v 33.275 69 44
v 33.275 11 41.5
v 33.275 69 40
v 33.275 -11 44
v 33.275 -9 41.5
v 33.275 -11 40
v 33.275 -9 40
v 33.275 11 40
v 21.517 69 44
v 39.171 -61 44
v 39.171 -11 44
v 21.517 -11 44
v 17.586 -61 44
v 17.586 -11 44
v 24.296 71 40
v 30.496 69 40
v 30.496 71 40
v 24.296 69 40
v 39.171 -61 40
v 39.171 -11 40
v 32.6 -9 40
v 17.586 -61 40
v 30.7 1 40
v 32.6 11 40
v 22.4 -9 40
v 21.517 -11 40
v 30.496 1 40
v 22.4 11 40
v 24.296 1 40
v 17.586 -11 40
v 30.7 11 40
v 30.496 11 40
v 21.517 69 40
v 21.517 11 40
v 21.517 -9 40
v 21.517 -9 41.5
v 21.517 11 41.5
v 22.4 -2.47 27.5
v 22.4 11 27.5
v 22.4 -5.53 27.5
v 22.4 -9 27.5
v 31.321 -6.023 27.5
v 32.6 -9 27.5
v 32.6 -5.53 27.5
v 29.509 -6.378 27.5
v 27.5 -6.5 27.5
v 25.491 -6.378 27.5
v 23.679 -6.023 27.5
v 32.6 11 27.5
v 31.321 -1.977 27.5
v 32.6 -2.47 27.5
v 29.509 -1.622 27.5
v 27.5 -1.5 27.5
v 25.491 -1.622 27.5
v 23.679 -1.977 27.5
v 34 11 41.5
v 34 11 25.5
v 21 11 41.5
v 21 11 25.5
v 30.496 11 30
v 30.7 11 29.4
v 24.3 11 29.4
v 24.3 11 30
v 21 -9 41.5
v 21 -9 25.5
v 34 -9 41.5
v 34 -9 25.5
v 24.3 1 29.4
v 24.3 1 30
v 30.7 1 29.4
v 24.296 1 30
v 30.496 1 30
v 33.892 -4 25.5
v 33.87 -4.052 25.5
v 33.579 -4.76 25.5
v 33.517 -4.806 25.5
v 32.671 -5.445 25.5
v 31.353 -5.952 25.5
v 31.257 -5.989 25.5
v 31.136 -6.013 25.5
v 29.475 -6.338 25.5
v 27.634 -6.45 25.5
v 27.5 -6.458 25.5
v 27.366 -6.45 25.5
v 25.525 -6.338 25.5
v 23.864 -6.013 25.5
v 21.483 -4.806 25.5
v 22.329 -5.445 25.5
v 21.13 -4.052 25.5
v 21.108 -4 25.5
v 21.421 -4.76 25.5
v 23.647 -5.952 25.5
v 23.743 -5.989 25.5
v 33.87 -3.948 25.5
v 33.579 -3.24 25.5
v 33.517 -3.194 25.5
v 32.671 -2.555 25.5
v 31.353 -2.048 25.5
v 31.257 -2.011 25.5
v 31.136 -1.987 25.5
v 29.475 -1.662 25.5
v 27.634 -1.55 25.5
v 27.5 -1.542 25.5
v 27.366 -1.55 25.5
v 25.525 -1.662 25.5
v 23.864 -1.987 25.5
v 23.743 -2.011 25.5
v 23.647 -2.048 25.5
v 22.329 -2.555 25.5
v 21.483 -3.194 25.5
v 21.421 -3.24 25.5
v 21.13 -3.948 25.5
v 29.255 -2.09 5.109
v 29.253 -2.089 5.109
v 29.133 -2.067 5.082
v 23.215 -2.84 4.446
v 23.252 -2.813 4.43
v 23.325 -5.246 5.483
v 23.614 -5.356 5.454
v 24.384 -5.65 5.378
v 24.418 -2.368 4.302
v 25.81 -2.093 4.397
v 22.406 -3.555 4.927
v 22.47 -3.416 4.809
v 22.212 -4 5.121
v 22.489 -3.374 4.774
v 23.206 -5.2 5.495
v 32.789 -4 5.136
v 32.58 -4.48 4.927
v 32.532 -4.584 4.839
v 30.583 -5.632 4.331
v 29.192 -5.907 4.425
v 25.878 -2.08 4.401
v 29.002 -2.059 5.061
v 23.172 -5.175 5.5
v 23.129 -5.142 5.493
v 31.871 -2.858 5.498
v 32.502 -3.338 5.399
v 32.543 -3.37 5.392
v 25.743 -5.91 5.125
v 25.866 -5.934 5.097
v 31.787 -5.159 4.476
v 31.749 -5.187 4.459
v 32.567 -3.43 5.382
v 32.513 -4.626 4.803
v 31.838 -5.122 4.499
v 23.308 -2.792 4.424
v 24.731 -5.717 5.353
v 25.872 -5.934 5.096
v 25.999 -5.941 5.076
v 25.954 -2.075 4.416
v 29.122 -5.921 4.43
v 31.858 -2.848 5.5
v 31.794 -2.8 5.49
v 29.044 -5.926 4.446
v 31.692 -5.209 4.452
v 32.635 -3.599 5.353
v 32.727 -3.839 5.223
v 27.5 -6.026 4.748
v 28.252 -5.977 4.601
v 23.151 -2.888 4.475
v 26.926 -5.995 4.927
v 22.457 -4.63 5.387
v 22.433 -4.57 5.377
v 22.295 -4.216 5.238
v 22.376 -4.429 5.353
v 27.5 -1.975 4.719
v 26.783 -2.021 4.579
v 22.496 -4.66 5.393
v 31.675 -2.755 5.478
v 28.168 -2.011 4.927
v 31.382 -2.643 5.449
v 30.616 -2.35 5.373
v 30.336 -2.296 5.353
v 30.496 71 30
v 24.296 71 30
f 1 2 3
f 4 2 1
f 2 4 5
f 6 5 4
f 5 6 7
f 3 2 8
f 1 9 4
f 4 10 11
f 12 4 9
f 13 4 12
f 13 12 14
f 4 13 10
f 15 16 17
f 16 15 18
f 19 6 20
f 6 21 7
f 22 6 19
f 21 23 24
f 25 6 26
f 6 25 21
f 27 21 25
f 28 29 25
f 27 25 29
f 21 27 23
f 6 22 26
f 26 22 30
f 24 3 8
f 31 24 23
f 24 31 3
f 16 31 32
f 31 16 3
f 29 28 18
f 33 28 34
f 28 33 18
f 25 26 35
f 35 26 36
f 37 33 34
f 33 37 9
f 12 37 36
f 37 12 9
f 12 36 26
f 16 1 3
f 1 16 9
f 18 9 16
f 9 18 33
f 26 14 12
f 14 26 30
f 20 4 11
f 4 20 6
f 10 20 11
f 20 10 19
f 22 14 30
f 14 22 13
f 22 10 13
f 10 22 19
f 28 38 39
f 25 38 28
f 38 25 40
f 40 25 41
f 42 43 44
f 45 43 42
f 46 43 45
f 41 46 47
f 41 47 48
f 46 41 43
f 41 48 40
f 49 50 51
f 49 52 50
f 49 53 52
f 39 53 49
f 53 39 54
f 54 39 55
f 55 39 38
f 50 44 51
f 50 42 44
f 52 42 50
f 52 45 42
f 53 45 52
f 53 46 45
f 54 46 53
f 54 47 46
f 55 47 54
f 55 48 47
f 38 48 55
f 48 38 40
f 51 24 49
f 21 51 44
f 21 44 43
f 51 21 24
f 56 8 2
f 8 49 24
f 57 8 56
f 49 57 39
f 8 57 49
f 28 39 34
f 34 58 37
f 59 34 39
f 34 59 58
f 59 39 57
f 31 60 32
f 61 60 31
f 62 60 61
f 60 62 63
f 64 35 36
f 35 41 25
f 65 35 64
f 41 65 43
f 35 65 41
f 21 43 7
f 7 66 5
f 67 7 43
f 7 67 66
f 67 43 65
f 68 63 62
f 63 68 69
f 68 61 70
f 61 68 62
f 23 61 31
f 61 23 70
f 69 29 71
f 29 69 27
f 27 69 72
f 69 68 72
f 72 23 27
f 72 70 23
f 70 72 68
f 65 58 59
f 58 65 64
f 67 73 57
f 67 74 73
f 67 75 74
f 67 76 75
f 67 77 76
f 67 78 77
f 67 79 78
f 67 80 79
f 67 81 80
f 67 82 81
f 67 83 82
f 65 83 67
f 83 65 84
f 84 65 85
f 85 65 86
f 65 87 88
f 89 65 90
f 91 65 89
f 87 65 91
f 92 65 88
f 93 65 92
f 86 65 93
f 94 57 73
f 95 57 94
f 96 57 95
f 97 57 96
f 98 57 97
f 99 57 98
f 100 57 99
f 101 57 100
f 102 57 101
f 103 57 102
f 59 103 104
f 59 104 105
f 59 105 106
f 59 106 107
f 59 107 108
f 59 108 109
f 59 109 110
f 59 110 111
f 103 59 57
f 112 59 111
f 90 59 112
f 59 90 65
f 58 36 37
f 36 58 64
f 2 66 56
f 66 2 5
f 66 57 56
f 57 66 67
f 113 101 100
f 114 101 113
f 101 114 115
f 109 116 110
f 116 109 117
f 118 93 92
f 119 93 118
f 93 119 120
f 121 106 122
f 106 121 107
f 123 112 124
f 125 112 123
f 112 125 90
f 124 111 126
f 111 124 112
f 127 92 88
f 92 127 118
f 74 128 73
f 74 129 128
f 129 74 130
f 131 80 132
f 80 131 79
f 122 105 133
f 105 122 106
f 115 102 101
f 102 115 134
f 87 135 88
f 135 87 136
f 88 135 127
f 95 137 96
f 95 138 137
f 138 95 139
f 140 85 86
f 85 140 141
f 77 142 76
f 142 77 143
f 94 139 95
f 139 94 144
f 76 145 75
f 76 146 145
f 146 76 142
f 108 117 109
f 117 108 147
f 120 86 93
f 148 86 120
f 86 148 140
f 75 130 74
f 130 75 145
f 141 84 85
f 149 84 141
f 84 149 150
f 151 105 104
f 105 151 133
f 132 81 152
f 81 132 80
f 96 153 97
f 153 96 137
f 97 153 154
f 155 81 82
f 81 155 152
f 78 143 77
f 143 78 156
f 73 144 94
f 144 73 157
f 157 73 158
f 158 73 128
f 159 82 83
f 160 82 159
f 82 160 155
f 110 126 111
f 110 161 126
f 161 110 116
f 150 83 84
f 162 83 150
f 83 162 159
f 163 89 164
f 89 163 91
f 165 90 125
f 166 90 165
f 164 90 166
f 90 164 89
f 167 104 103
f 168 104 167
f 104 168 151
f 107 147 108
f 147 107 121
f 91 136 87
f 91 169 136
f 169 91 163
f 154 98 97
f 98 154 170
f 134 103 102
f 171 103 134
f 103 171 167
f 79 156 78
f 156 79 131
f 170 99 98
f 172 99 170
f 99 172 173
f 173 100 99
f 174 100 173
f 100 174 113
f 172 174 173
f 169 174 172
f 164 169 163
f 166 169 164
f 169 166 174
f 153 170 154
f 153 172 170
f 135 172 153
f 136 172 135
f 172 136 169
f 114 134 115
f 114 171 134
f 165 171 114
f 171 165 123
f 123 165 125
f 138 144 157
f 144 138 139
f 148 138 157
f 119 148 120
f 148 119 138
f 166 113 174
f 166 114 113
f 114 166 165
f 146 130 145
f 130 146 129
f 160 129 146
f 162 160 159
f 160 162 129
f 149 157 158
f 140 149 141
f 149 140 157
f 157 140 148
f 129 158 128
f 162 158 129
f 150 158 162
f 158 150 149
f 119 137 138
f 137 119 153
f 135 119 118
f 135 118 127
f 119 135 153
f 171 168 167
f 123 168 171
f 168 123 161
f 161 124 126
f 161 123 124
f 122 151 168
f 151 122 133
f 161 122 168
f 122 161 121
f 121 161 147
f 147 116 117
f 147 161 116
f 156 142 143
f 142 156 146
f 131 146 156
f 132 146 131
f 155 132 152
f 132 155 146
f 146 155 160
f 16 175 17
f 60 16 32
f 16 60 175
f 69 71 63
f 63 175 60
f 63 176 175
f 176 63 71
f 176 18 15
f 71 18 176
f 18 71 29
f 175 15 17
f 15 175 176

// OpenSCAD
// file: irkem_hammerTips_v1.scad
tol = 0.2;
extrWall = 1.7+tol;
extrH = 12.9+tol;//12.6+tol;
extrW = 10+tol;

hammerY = 20;
hammerZ = 24;

$fn = 20;

module hammerTips(){
//Strike cylinder:
//v1: made elliptical and added skew-angle indentation to:
//      1. Avoid hitting adjacent strings
//      2. Maximize likelihood of striking proper string
//      3. Ensure that hammer tip force on the string is centering
//Prior cone geometry resulted in adjacent string strikes in y axis for most keys
    difference(){
        translate([0,-5,0]) scale([2.6,1,1]) cylinder(hammerZ,2.5,2);
        translate([-12,-1.8,25]) rotate([0,90,-15]) cylinder(hammerZ,3,3);
    }
difference(){
    translate([-6.5,-10,-14]) cube([13,hammerY,16]);
    union(){uChan();translate([-extrW/2,-hammerY/2,-extrH]) cube([extrW,hammerY/2,extrH]);
}
}
module uChan(){
difference(){
    translate([-extrW/2,-hammerY/2,-extrH]) cube([extrW,hammerY,extrH]);
    translate([-extrW/2+extrWall,-hammerY/2,-extrH-extrWall]) cube([extrW-2*extrWall,hammerY,extrH]);
}
}
}

//hammerTips();
// main file
include <irkem_hammerTips_v1.scad>

xO = -6;
yO = -11;
zO = 40;

kH = 4;
bH = 10;
wL = 50;
bL = 80;
oct = 6.5 * 25.4;
gap = 2;
n_oct = 1;//5;
n_keys = 12 * n_oct;
oset = -1;

sharpFlag = 1;

for (k = [2]){//:1:(n_keys-1)]){
    //
    translate([k*13.75+6.0+xO,12+yO,-12.5+zO]) rotate([0,180,0]) hammerTips();
}

for (k = [0:1:(n_oct-1)]){

//C:
//color("ivory") translate([k*oct+0+xO,0+yO,0+zO]) cube([oct*1/12-gap,bL,kH]);
//color("ivory") translate([k*oct+0+xO,-wL+yO,0+zO]) cube([oct*1/7-gap,wL,kH]);

////C#:
//if (sharpFlag){    
//color("black") translate([k*oct+oct*1/12+xO,gap+yO,0+zO]) cube([oct*1/12-gap,bL,kH+bH]);
//}//

////D:
color("ivory") translate([k*oct+oct*2/12+xO,0+yO,0+zO]) cube([oct*1/12-gap,bL,kH]);
color("ivory") translate([k*oct+oct*1/7+xO,-wL+yO,0+zO]) cube([oct*1/7-gap,wL,kH]);//

////D#:
//if (sharpFlag){
//color("black") translate([k*oct+oct*3/12+xO,gap+yO,0+zO]) cube([oct*1/12-gap,bL,kH+bH]);
//}//

////E:
//color("ivory") translate([k*oct+oct*4/12+xO,0+yO,0+zO]) cube([2+oct*1/12-gap,bL,kH]);
//color("ivory") translate([k*oct+oct*2/7+xO,-wL+yO,0+zO]) cube([oct*1/7-gap,wL,kH]);//

////F:
//color("ivory") difference(){
//    translate([k*oct+oct*3/7+xO,-wL+yO,0+zO]) cube([oct*1/7-gap,wL+bL,kH]);
//    translate([k*oct+oct*6/12-2+xO,0+yO,0+zO]) cube([4+oct*(1/7-1/12)-gap,bL,kH]);
//}
//color("ivory") translate([k*oct+oct*3/7+xO,-wL+yO,0+zO]) cube([oct*1/7-gap,wL,kH]);//

////F#:
//if (sharpFlag){
//color("black") translate([k*oct+oct*6/12+xO,gap+yO,0+zO]) cube([oct*1/12-gap,bL,kH+bH]);
//}//

////G:
//color("ivory") translate([k*oct+oct*7/12+xO,0+yO,0+zO]) cube([oct*1/12-gap,bL,kH]);
//color("ivory") translate([k*oct+oct*4/7+xO,-wL+yO,0+zO]) cube([oct*1/7-gap,wL,kH]);//

////G#:
//if (sharpFlag){
//color("black") translate([k*oct+oct*8/12+xO,gap+yO,0+zO]) cube([oct*1/12-gap,bL,kH+bH]);
//}//

////A:
//color("ivory") translate([k*oct+oct*9/12+xO,0+yO,0+zO]) cube([oct*1/12-gap,bL,kH]);
//color("ivory") translate([k*oct+oct*5/7+xO,-wL+yO,0+zO]) cube([oct*1/7-gap,wL,kH]);//

////A#:
//if (sharpFlag){
//color("black") translate([k*oct+oct*10/12+xO,gap+yO,0+zO]) cube([oct*1/12-gap,bL,kH+bH]);
//}//

////B:
//color("ivory") translate([k*oct+oct*11/12+xO,0+yO,0+zO]) cube([oct*1/12-gap,bL,kH]);
//color("ivory") translate([k*oct+oct*6/7+xO,-wL+yO,0+zO]) cube([oct*1/7-gap,wL,kH]);//

}

for (i = [2]){//,2,4,5,7,9,11]){//[0:1:(n_keys-1)]){
    translate([oset+oct*i/12+(oct*1/12-6.2)/2+xO,2+10+yO,-10+zO]) cube([6.2,bL-10,10]);
}

//if (sharpFlag){
//    for (i = [1,3,6,8,10]){//[0:1:(n_keys-1)]){
//    translate([oset+oct*i/12+(oct*1/12-6.2)/2+xO,2+10+yO,-10+zO]) cube([6.2,bL-10,10]);
//}
//}
